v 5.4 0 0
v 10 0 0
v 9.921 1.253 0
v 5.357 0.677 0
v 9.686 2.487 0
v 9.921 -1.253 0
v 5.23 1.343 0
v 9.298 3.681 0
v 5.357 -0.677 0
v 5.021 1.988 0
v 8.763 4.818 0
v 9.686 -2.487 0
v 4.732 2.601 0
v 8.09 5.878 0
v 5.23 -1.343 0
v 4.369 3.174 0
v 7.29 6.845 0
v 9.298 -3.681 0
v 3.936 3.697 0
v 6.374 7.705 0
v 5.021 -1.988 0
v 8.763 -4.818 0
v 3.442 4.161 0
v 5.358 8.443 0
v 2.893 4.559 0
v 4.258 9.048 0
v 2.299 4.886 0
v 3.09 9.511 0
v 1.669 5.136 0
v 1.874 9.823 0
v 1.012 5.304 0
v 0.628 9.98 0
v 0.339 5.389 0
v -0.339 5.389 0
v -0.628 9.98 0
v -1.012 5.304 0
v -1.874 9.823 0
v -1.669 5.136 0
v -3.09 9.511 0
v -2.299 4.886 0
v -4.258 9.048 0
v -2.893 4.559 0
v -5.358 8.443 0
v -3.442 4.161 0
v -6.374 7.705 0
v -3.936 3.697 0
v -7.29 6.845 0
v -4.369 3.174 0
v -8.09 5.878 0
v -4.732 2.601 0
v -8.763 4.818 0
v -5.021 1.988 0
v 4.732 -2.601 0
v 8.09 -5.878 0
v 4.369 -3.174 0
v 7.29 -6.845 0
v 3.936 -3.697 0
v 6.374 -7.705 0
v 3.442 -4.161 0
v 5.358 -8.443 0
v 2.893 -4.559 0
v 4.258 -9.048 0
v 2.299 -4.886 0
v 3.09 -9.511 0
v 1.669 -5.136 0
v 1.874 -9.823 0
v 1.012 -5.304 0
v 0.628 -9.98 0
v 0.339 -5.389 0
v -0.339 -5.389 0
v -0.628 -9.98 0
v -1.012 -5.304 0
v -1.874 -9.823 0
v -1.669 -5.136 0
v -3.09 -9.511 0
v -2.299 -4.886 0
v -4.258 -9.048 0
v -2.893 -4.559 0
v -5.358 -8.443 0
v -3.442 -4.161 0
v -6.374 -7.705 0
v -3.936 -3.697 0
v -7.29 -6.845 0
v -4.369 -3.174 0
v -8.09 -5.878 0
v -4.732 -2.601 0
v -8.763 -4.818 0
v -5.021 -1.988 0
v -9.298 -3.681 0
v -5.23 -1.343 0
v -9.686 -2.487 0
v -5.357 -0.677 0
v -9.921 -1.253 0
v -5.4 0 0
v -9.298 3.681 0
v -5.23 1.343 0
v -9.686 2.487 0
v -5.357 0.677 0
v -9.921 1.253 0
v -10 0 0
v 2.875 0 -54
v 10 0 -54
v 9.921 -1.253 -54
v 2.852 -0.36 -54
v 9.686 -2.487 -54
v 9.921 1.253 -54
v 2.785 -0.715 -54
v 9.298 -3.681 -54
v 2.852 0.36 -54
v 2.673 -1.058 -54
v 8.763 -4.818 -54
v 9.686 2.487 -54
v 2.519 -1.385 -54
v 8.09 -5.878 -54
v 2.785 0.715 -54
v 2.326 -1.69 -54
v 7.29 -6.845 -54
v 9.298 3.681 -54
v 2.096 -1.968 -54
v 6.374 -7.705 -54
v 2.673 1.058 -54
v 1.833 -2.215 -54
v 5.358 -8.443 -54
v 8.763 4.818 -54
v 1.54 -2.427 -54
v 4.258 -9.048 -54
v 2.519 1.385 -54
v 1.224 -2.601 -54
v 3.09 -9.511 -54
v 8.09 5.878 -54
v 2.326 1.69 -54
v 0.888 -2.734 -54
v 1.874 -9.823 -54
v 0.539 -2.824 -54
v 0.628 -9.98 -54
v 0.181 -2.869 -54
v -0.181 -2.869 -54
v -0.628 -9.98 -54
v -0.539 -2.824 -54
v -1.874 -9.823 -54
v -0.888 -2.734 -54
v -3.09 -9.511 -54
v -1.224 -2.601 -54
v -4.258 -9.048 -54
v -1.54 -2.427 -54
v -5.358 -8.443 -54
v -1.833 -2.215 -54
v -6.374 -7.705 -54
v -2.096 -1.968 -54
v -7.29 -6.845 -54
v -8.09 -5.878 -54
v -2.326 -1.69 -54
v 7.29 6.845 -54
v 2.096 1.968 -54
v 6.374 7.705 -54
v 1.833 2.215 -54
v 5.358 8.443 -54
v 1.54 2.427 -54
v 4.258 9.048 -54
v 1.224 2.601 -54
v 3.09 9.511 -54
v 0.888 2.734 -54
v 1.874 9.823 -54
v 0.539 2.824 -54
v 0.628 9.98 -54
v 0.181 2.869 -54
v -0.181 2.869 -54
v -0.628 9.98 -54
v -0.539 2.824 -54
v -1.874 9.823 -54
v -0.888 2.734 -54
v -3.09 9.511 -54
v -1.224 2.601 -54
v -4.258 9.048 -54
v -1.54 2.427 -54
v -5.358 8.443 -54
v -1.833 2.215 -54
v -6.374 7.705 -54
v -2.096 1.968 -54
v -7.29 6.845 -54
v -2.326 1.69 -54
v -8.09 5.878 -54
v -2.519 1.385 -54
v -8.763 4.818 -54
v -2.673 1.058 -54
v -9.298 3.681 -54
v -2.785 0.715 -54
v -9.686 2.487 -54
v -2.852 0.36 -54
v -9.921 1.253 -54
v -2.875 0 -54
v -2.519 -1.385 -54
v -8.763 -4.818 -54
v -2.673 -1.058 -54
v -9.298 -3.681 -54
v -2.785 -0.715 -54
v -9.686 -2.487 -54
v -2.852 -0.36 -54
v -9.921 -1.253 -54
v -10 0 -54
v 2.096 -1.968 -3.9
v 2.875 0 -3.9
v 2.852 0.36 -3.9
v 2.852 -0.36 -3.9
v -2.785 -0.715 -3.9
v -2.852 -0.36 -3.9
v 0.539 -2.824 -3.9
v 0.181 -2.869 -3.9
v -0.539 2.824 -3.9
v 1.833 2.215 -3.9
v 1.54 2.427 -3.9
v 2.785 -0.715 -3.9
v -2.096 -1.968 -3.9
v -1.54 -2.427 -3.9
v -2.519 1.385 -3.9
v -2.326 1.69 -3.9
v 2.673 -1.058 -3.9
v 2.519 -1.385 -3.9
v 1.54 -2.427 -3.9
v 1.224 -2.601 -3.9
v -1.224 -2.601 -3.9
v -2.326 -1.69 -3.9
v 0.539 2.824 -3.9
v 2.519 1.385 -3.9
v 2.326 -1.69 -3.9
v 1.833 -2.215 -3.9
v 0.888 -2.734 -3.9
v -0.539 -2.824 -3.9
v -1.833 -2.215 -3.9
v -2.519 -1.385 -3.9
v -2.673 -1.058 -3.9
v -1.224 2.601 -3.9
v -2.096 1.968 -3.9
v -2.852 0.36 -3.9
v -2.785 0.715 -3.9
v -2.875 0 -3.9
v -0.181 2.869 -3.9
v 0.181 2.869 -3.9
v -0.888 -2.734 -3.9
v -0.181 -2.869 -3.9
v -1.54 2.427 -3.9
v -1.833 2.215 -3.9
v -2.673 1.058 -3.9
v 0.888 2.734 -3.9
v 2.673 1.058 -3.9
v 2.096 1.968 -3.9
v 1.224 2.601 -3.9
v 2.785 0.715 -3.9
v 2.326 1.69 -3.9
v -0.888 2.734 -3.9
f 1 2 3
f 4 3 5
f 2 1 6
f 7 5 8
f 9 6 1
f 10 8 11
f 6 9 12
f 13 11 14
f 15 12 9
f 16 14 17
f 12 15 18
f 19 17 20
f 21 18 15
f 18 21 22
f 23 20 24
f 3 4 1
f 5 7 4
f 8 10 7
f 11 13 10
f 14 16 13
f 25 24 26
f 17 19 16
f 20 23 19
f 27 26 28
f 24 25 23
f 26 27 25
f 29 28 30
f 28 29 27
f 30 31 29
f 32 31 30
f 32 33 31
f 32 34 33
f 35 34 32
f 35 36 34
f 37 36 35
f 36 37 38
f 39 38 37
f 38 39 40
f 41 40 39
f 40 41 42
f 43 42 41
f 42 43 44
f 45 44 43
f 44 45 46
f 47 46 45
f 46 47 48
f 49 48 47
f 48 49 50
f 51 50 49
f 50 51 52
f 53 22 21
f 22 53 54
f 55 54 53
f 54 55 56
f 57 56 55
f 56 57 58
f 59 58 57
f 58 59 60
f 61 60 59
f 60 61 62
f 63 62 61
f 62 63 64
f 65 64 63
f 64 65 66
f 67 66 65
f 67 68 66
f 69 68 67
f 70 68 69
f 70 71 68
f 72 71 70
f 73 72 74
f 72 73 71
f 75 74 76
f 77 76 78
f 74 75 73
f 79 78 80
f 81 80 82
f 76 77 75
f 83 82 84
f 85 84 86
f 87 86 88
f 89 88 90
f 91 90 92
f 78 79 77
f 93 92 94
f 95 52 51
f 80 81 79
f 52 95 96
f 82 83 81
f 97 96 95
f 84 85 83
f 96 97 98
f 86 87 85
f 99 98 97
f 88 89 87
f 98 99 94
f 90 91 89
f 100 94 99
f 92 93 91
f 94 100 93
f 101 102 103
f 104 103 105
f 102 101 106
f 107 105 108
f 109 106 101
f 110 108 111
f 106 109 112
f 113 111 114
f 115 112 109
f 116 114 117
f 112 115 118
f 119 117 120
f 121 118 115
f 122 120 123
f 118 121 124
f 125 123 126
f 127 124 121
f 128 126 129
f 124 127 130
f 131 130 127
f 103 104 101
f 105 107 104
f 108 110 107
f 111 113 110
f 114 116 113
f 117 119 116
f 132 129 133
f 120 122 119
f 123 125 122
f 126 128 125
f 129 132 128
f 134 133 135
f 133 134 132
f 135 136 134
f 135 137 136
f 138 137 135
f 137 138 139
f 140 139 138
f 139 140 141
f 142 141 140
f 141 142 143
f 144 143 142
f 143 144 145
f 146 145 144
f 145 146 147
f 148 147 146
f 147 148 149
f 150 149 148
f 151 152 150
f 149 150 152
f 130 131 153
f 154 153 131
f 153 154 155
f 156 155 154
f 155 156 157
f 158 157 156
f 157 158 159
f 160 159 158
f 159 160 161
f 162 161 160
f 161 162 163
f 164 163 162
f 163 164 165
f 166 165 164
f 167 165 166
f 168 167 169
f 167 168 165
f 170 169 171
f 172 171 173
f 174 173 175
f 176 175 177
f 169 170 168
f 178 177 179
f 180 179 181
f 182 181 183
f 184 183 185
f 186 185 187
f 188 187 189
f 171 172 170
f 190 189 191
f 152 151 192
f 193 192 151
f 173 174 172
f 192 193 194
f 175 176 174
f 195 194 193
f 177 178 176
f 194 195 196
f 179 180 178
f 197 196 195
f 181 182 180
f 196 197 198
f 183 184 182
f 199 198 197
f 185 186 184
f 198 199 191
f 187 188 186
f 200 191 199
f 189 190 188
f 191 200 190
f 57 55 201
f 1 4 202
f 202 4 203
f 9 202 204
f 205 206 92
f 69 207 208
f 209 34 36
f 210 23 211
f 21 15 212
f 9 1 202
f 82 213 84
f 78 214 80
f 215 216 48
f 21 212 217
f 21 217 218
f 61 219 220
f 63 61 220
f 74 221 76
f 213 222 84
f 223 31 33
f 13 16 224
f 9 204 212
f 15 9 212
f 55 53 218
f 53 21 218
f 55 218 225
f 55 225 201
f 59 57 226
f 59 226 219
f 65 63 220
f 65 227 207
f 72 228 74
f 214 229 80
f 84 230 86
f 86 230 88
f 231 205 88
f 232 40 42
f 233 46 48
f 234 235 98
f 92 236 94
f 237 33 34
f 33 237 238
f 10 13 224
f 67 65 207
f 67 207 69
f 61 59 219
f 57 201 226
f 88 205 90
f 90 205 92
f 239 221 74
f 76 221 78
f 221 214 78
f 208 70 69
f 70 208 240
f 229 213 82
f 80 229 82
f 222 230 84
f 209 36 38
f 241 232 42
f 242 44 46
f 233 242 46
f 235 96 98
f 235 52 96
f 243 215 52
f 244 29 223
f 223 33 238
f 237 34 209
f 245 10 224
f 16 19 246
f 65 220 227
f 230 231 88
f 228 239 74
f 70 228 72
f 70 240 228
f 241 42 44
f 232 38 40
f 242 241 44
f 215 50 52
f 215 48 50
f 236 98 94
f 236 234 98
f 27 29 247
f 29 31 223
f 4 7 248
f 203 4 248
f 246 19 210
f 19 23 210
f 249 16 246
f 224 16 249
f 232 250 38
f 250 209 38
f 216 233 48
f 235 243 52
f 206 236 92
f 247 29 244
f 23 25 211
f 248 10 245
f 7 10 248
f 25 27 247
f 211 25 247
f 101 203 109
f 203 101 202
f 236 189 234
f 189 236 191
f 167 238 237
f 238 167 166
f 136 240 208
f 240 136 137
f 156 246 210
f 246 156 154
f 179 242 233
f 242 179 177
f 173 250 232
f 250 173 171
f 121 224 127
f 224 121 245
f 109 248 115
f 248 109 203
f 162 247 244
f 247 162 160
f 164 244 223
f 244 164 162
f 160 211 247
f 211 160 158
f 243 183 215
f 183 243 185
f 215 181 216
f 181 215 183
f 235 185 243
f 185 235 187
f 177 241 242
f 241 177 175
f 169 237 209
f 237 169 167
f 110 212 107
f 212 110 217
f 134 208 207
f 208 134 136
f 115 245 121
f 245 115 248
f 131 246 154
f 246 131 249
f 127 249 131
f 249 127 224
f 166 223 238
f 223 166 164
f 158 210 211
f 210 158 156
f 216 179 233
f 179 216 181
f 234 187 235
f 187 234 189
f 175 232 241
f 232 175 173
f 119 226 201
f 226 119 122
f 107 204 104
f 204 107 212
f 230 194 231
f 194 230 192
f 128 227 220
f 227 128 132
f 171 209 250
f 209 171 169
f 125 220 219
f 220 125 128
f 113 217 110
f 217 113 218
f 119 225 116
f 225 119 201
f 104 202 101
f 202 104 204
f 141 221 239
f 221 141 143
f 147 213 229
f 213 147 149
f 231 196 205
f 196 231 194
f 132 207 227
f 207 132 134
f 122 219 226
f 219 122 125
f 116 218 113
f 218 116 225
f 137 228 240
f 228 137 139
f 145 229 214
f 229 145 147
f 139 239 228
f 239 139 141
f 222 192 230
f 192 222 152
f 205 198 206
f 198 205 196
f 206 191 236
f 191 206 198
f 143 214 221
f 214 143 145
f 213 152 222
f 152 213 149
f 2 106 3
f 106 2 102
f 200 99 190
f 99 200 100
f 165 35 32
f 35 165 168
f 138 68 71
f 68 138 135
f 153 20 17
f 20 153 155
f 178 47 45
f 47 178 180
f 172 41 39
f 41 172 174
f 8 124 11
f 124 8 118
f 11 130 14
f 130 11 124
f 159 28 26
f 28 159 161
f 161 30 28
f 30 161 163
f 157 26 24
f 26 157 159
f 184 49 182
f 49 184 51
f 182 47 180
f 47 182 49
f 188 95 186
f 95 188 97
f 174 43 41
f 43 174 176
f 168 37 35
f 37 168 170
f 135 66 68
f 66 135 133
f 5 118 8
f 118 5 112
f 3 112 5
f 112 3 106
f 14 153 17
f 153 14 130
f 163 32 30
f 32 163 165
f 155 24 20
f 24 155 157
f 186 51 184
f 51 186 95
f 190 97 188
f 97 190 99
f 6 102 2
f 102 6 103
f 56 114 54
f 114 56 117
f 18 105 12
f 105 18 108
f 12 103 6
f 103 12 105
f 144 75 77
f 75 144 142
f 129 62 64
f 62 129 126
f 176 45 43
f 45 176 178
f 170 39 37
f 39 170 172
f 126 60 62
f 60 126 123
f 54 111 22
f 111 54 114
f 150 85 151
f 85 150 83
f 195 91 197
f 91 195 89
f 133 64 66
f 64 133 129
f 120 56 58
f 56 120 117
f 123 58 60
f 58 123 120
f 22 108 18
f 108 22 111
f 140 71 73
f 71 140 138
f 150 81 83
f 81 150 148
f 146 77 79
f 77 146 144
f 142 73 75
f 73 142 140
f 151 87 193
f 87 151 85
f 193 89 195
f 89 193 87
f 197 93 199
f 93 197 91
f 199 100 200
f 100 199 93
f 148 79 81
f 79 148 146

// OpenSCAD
$fn = 50;


difference() {
	union() {
		translate(v = [0, 0, -54.0000000000]) {
			cylinder(h = 54, r = 10.0000000000);
		}
		cylinder(h = 0, r = 13.0000000000);
	}
	union() {
		translate(v = [0, 0, 0]) {
			rotate(a = [0, 0, 0]) {
				difference() {
					union() {
						#translate(v = [0, 0, -54.0000000000]) {
							cylinder(h = 54, r = 2.6000000000);
						}
						#translate(v = [0, 0, -3.9000000000]) {
							cylinder(h = 3.9000000000, r1 = 2.8750000000, r2 = 5.4000000000);
						}
						#translate(v = [0, 0, -54.0000000000]) {
							cylinder(h = 54, r = 2.8750000000);
						}
						#translate(v = [0, 0, -54.0000000000]) {
							cylinder(h = 54, r = 2.6000000000);
						}
					}
					union();
				}
			}
		}
	}
}
